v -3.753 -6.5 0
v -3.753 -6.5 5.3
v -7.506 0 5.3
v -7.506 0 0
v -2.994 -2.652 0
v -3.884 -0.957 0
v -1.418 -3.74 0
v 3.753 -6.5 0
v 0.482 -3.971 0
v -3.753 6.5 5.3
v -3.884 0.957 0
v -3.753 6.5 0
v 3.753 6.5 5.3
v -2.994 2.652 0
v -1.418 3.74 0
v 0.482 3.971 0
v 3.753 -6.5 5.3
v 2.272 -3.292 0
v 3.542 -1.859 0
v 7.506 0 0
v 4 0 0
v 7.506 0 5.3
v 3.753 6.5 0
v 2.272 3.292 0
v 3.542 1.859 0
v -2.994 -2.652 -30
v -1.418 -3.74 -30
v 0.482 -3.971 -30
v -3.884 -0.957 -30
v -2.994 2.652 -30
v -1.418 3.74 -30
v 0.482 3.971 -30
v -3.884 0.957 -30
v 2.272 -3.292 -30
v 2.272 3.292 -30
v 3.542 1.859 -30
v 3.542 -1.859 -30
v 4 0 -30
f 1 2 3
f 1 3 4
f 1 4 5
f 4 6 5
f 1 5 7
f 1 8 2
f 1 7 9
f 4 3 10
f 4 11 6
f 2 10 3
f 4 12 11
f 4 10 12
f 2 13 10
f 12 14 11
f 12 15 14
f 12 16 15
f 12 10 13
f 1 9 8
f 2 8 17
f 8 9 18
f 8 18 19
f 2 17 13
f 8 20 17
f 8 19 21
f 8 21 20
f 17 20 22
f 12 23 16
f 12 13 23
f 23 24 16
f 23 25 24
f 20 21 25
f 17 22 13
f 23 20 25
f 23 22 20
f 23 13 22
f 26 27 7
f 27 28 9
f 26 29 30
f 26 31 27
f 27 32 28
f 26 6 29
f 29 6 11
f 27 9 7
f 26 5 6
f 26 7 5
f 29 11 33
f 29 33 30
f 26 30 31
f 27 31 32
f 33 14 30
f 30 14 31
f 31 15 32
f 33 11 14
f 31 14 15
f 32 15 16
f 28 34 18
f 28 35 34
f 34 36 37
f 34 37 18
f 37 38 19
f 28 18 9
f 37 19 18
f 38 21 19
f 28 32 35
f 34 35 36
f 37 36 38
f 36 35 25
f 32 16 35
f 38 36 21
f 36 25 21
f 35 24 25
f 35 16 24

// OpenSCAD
module bolt() {
    union() {
        cylinder(h = 5.3, r = 13 / sqrt(3), $fn = 6);
        translate([0, 0, -30]) cylinder(h = 30, r = 4);
    }
}

bolt();
